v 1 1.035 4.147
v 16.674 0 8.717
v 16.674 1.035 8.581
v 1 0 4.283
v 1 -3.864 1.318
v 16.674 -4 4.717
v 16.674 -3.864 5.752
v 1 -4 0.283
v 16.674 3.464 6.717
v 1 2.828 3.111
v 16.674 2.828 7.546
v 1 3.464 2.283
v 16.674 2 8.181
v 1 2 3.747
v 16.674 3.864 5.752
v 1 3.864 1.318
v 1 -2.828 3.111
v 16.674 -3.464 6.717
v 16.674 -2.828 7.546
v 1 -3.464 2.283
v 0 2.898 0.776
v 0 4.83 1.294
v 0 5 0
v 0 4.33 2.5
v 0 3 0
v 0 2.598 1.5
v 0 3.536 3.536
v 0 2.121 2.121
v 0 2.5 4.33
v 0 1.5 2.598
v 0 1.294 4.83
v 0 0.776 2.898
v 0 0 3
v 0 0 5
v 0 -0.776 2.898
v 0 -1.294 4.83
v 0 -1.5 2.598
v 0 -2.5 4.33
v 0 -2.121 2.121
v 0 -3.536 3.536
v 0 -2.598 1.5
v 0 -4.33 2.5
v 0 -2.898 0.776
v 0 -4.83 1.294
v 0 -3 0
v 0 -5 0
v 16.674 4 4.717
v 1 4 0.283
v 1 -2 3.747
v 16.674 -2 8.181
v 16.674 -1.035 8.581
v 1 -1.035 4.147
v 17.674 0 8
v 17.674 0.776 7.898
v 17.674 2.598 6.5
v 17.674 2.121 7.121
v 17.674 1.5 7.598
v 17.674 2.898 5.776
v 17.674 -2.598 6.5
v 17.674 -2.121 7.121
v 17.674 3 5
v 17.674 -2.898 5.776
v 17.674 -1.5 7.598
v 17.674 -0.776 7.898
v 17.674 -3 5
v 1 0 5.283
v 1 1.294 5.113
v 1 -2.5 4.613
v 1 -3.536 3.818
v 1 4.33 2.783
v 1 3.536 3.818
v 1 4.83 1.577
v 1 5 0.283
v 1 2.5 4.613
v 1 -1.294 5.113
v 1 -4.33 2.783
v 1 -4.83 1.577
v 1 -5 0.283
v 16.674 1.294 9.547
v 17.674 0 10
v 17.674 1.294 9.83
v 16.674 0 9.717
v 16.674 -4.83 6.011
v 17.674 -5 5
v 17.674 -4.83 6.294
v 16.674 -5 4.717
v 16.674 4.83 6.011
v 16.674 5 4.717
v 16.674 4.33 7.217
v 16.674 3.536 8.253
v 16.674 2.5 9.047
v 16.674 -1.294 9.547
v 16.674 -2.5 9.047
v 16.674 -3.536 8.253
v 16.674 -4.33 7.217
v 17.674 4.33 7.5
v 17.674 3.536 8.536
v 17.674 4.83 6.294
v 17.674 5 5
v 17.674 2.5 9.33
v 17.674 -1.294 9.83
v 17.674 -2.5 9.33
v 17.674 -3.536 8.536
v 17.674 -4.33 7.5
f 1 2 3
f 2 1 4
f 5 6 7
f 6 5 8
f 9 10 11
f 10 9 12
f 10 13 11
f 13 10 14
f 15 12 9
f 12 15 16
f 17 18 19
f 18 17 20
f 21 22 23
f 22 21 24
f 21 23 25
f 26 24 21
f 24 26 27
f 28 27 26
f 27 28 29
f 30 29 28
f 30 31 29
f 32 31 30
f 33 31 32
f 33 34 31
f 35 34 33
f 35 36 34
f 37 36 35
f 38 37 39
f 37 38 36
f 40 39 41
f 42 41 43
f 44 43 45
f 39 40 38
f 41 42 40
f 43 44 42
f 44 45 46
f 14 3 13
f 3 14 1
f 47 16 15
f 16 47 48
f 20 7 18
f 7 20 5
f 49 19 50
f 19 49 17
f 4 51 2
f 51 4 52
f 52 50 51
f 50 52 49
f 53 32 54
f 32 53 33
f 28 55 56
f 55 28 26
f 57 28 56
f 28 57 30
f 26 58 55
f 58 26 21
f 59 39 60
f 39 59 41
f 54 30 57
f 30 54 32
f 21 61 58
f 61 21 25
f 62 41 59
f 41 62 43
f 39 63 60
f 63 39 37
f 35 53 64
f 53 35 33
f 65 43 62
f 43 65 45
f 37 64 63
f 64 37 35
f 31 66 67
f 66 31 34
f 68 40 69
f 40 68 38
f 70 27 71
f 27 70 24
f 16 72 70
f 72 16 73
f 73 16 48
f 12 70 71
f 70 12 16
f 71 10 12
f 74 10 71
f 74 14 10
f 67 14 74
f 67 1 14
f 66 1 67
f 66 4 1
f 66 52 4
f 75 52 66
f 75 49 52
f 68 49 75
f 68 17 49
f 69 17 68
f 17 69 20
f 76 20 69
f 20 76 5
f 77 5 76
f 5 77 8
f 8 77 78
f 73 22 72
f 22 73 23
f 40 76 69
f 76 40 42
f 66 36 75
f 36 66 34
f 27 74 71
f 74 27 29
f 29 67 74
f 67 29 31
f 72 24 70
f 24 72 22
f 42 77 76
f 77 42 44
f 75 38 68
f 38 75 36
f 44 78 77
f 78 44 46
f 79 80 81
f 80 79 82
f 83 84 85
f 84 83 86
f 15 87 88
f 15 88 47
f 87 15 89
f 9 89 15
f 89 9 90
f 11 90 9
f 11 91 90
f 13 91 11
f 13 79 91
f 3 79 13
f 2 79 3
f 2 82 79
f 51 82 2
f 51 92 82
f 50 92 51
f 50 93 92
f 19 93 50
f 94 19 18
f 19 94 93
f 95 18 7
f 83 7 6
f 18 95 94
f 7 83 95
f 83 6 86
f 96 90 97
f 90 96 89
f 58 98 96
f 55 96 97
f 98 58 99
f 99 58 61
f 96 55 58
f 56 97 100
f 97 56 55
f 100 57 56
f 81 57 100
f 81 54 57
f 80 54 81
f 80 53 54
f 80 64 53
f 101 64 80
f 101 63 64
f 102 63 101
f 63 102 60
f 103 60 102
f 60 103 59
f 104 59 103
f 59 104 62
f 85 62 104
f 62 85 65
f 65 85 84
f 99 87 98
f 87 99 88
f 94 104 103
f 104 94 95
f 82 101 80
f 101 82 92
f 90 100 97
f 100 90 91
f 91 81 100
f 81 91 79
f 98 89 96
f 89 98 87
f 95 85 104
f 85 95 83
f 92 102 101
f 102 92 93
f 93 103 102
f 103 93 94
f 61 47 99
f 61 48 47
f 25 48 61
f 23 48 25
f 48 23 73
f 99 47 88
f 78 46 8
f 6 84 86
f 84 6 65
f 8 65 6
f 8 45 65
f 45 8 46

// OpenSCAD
// file: ../build_environments.scad
// build_environments.scad: modules to build level sections
//

module pool(diameter=10.0, wall_height=2.0, step_width=3.0, connections=[])
{
    difference() {
        union() {
        difference() {
            cylinder(h=0.5,r1=diameter+step_width,r2=diameter+step_width,$fn=48);
            translate([0,0,-0.1])
                cylinder(h=0.7,r1=diameter,r2=diameter,$fn=48);
        }
        difference() {
            cylinder(h=wall_height,r1=diameter+step_width+1.0,r2=diameter+step_width+1.0,$fn=48);
            translate([0,0,-0.1])
                cylinder(h=wall_height+0.2,r1=diameter+step_width,r2=diameter+step_width,$fn=48);
        }
        }
    
        for (c = connections)
        {
            rotate([0,90,0]) {
                angle = atan2(c[1],c[0]);
                rotate([-angle,0,0]) {
                    cylinder(h=diameter+5.0,r1=c[2],r2=c[2],$fn=48);
                }
            }
        }
    }
}

module straight(length=10.0, width=2.0, dy1=0.0, dy2=0.0, dz=0.0)
{
    dims = [0, 0, 0, 0, 0, (dz/length)];
    matrix = [
        [ 1, dims[0], dims[1], 0 ],
        [ dims[2], 1, dims[4], 0 ],
        [ dims[5], dims[3], 1, 0 ],
        [ 0, 0, 0, 1 ]
    ];
    multmatrix(matrix)
    difference() {
        translate([dy1,0,0])
        union() {
            rotate([0,90,0]) {
                difference() {
                    cylinder(h=(length-dy1-dy2),r1=width+1.0,r2=width+1.0,$fn=24);
                    translate([0,0,-0.1])
                        cylinder(h=(length-dy1-dy2+0.2),r1=width,r2=width,$fn=24);
                }
                difference() {
                    cylinder(h=1.0,r1=width+2.0,r2=width+2.0,$fn=24);
                    translate([0,0,-0.1])
                        cylinder(h=1.2,r1=width,r2=width,$fn=24);
                }
                translate([0,0,(length-dy1-dy2)-1.0]) {
                    difference() {
                        cylinder(h=1.0,r1=width+2.0,r2=width+2.0,$fn=24);
                        translate([0,0,-0.1])
                            cylinder(h=1.2,r1=width,r2=width,$fn=24);
                    }
                }
            }
        }
        translate([0,0,-(2*width+4.0)/2])
            cube([3*length,3*length,2*width+4.0],center=true);
    }
}

module curve(p0=[0,0], center=[0,0], dir=1, angle=0.0, width=2.0)
{
    radius = sqrt((p0[0]-center[0])*(p0[0]-center[0]) + (p0[1]-center[1])*(p0[1]-center[1]));
    if (dir == 0) {
        difference() {
            rotate([0,0,-90])
            difference() {
                rotate_extrude(angle = angle, convexity = 10, $fn=32)
                    translate([radius, 0, 0])
                        circle(r = width+1.0,$fn=24);
                rotate([0,0,-1.0])
                    rotate_extrude(angle = angle+2.0, convexity = 10, $fn=32)
                        translate([radius, 0, 0])
                            circle(r = width,$fn=24);
            }
            translate([0,0,-(2*width+4.0)/2])
                cube([5*radius,5*radius,2*width+4.0],center=true);
        }
    }
    else {
        difference() {
            rotate([0,0,90])
            difference() {
                rotate_extrude(angle = -angle, convexity = 10, $fn=32)
                    translate([radius, 0, 0])
                        circle(r = width+1.0,$fn=24);
                rotate([0,0,1.0])
                    rotate_extrude(angle = -angle-2.0, convexity = 10, $fn=32)
                        translate([radius, 0, 0])
                            circle(r = width,$fn=24);
            }
            translate([0,0,-(2*width+4.0)/2])
                cube([5*radius,5*radius,2*width+4.0],center=true);
        }
    }

}

// test pool
//pool(diameter=12.0000, wall_height=3.0000, step_width=3.0000, connections=[[0.0000,-26.0000,2.0000], [23.6074,0.0000,2.0000]]);

// test straight, slope
//straight(length=26.0000, width=2.0000, dy1=11.8322, dy2=6.7082, dz=0.0000);
//straight(length=29.1549, width=12.0000, dy1=0.0000, dy2=0.0000, dz=-15.0000);

// test curve
//curve(p0=[23.6074, 0.0000], center=[23.6074, 5.0000], dir=0, angle=60.1011, width=2.0000);
//curve(p0=[33.6426, 12.4219], center=[37.9771, 9.9295], dir=1, angle=120.4627, width=2.0000);
// main file
use <../build_environments.scad>;
straight(length=17.6735, width=3.0000, dy1=0.0000, dy2=0.0000, dz=5.0000);
